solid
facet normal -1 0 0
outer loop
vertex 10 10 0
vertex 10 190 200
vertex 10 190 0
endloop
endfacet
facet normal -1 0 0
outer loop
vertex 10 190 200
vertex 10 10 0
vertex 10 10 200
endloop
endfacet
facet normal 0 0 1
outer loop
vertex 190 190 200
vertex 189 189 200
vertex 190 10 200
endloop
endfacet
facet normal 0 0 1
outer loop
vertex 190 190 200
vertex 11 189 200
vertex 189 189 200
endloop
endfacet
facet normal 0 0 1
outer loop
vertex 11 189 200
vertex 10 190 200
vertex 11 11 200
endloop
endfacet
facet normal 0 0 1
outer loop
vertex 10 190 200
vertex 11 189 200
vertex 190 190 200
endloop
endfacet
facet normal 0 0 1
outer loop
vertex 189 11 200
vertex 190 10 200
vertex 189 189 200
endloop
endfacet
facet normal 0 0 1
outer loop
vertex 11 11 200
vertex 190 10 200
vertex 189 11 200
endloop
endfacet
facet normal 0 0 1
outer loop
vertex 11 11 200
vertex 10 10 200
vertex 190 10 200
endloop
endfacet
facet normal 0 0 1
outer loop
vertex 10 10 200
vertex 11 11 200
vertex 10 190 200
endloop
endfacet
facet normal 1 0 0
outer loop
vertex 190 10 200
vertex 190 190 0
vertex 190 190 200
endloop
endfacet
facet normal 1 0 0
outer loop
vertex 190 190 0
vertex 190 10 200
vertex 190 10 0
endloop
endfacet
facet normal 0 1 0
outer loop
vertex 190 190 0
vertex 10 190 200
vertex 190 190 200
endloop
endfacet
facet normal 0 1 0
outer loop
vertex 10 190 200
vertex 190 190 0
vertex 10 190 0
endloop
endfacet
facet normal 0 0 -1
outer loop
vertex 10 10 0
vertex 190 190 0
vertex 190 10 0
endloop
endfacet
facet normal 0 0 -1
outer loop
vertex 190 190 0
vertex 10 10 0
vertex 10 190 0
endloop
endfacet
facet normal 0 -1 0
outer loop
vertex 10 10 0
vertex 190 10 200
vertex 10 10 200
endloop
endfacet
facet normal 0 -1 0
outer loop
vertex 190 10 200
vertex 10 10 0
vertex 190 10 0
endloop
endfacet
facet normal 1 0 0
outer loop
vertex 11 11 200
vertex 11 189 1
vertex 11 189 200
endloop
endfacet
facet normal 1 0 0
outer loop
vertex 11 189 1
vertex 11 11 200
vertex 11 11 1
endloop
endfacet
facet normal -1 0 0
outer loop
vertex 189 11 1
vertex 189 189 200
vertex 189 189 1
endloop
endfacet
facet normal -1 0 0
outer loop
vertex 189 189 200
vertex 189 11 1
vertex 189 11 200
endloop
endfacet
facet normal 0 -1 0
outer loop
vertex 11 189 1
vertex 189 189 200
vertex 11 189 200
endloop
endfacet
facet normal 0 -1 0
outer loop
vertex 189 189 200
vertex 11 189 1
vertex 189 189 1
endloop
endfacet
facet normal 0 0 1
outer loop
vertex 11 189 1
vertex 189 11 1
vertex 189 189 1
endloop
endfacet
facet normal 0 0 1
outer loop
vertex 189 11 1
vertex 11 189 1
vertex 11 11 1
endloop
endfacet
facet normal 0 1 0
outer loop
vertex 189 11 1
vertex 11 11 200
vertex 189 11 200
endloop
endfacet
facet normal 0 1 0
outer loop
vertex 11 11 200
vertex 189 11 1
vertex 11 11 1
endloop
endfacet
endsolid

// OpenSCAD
/* 
    scalable-box is a 3D scalable box model
    
    Copyright (C) 2017  Guillem Martínez Paris

    This program is free software: you can redistribute it and/or modify
    it under the terms of the GNU General Public License as published by
    the Free Software Foundation, either version 3 of the License, or
    (at your option) any later version.

    This program is distributed in the hope that it will be useful,
    but WITHOUT ANY WARRANTY; without even the implied warranty of
    MERCHANTABILITY or FITNESS FOR A PARTICULAR PURPOSE.  See the
    GNU General Public License for more details.

    You should have received a copy of the GNU General Public License
    along with this program.  If not, see <http://www.gnu.org/licenses/>.
*/

//Variables
length = 200; //Alargada mm
width = 200; //Ancho en mm
height = 200; //Altura en mm
radius = 10; //Radio en mm
doubleRadius = 2*radius; //DobleRadio

//Modulo
module roundedBox(length, width, height, radius)
{
//Cubo
minkowski()
    {
        cube (size=[length-doubleRadius, width-doubleRadius, height]);
    }
}

//Corte
translate([10,10,0])
{
    difference()
    {   
        roundedBox(length, width, height, radius);
        translate([1,1,1])
            {
            //Paredes de la caja    
            roundedBox(length-2, width-2, height-1, radius);
            }
        }
}
